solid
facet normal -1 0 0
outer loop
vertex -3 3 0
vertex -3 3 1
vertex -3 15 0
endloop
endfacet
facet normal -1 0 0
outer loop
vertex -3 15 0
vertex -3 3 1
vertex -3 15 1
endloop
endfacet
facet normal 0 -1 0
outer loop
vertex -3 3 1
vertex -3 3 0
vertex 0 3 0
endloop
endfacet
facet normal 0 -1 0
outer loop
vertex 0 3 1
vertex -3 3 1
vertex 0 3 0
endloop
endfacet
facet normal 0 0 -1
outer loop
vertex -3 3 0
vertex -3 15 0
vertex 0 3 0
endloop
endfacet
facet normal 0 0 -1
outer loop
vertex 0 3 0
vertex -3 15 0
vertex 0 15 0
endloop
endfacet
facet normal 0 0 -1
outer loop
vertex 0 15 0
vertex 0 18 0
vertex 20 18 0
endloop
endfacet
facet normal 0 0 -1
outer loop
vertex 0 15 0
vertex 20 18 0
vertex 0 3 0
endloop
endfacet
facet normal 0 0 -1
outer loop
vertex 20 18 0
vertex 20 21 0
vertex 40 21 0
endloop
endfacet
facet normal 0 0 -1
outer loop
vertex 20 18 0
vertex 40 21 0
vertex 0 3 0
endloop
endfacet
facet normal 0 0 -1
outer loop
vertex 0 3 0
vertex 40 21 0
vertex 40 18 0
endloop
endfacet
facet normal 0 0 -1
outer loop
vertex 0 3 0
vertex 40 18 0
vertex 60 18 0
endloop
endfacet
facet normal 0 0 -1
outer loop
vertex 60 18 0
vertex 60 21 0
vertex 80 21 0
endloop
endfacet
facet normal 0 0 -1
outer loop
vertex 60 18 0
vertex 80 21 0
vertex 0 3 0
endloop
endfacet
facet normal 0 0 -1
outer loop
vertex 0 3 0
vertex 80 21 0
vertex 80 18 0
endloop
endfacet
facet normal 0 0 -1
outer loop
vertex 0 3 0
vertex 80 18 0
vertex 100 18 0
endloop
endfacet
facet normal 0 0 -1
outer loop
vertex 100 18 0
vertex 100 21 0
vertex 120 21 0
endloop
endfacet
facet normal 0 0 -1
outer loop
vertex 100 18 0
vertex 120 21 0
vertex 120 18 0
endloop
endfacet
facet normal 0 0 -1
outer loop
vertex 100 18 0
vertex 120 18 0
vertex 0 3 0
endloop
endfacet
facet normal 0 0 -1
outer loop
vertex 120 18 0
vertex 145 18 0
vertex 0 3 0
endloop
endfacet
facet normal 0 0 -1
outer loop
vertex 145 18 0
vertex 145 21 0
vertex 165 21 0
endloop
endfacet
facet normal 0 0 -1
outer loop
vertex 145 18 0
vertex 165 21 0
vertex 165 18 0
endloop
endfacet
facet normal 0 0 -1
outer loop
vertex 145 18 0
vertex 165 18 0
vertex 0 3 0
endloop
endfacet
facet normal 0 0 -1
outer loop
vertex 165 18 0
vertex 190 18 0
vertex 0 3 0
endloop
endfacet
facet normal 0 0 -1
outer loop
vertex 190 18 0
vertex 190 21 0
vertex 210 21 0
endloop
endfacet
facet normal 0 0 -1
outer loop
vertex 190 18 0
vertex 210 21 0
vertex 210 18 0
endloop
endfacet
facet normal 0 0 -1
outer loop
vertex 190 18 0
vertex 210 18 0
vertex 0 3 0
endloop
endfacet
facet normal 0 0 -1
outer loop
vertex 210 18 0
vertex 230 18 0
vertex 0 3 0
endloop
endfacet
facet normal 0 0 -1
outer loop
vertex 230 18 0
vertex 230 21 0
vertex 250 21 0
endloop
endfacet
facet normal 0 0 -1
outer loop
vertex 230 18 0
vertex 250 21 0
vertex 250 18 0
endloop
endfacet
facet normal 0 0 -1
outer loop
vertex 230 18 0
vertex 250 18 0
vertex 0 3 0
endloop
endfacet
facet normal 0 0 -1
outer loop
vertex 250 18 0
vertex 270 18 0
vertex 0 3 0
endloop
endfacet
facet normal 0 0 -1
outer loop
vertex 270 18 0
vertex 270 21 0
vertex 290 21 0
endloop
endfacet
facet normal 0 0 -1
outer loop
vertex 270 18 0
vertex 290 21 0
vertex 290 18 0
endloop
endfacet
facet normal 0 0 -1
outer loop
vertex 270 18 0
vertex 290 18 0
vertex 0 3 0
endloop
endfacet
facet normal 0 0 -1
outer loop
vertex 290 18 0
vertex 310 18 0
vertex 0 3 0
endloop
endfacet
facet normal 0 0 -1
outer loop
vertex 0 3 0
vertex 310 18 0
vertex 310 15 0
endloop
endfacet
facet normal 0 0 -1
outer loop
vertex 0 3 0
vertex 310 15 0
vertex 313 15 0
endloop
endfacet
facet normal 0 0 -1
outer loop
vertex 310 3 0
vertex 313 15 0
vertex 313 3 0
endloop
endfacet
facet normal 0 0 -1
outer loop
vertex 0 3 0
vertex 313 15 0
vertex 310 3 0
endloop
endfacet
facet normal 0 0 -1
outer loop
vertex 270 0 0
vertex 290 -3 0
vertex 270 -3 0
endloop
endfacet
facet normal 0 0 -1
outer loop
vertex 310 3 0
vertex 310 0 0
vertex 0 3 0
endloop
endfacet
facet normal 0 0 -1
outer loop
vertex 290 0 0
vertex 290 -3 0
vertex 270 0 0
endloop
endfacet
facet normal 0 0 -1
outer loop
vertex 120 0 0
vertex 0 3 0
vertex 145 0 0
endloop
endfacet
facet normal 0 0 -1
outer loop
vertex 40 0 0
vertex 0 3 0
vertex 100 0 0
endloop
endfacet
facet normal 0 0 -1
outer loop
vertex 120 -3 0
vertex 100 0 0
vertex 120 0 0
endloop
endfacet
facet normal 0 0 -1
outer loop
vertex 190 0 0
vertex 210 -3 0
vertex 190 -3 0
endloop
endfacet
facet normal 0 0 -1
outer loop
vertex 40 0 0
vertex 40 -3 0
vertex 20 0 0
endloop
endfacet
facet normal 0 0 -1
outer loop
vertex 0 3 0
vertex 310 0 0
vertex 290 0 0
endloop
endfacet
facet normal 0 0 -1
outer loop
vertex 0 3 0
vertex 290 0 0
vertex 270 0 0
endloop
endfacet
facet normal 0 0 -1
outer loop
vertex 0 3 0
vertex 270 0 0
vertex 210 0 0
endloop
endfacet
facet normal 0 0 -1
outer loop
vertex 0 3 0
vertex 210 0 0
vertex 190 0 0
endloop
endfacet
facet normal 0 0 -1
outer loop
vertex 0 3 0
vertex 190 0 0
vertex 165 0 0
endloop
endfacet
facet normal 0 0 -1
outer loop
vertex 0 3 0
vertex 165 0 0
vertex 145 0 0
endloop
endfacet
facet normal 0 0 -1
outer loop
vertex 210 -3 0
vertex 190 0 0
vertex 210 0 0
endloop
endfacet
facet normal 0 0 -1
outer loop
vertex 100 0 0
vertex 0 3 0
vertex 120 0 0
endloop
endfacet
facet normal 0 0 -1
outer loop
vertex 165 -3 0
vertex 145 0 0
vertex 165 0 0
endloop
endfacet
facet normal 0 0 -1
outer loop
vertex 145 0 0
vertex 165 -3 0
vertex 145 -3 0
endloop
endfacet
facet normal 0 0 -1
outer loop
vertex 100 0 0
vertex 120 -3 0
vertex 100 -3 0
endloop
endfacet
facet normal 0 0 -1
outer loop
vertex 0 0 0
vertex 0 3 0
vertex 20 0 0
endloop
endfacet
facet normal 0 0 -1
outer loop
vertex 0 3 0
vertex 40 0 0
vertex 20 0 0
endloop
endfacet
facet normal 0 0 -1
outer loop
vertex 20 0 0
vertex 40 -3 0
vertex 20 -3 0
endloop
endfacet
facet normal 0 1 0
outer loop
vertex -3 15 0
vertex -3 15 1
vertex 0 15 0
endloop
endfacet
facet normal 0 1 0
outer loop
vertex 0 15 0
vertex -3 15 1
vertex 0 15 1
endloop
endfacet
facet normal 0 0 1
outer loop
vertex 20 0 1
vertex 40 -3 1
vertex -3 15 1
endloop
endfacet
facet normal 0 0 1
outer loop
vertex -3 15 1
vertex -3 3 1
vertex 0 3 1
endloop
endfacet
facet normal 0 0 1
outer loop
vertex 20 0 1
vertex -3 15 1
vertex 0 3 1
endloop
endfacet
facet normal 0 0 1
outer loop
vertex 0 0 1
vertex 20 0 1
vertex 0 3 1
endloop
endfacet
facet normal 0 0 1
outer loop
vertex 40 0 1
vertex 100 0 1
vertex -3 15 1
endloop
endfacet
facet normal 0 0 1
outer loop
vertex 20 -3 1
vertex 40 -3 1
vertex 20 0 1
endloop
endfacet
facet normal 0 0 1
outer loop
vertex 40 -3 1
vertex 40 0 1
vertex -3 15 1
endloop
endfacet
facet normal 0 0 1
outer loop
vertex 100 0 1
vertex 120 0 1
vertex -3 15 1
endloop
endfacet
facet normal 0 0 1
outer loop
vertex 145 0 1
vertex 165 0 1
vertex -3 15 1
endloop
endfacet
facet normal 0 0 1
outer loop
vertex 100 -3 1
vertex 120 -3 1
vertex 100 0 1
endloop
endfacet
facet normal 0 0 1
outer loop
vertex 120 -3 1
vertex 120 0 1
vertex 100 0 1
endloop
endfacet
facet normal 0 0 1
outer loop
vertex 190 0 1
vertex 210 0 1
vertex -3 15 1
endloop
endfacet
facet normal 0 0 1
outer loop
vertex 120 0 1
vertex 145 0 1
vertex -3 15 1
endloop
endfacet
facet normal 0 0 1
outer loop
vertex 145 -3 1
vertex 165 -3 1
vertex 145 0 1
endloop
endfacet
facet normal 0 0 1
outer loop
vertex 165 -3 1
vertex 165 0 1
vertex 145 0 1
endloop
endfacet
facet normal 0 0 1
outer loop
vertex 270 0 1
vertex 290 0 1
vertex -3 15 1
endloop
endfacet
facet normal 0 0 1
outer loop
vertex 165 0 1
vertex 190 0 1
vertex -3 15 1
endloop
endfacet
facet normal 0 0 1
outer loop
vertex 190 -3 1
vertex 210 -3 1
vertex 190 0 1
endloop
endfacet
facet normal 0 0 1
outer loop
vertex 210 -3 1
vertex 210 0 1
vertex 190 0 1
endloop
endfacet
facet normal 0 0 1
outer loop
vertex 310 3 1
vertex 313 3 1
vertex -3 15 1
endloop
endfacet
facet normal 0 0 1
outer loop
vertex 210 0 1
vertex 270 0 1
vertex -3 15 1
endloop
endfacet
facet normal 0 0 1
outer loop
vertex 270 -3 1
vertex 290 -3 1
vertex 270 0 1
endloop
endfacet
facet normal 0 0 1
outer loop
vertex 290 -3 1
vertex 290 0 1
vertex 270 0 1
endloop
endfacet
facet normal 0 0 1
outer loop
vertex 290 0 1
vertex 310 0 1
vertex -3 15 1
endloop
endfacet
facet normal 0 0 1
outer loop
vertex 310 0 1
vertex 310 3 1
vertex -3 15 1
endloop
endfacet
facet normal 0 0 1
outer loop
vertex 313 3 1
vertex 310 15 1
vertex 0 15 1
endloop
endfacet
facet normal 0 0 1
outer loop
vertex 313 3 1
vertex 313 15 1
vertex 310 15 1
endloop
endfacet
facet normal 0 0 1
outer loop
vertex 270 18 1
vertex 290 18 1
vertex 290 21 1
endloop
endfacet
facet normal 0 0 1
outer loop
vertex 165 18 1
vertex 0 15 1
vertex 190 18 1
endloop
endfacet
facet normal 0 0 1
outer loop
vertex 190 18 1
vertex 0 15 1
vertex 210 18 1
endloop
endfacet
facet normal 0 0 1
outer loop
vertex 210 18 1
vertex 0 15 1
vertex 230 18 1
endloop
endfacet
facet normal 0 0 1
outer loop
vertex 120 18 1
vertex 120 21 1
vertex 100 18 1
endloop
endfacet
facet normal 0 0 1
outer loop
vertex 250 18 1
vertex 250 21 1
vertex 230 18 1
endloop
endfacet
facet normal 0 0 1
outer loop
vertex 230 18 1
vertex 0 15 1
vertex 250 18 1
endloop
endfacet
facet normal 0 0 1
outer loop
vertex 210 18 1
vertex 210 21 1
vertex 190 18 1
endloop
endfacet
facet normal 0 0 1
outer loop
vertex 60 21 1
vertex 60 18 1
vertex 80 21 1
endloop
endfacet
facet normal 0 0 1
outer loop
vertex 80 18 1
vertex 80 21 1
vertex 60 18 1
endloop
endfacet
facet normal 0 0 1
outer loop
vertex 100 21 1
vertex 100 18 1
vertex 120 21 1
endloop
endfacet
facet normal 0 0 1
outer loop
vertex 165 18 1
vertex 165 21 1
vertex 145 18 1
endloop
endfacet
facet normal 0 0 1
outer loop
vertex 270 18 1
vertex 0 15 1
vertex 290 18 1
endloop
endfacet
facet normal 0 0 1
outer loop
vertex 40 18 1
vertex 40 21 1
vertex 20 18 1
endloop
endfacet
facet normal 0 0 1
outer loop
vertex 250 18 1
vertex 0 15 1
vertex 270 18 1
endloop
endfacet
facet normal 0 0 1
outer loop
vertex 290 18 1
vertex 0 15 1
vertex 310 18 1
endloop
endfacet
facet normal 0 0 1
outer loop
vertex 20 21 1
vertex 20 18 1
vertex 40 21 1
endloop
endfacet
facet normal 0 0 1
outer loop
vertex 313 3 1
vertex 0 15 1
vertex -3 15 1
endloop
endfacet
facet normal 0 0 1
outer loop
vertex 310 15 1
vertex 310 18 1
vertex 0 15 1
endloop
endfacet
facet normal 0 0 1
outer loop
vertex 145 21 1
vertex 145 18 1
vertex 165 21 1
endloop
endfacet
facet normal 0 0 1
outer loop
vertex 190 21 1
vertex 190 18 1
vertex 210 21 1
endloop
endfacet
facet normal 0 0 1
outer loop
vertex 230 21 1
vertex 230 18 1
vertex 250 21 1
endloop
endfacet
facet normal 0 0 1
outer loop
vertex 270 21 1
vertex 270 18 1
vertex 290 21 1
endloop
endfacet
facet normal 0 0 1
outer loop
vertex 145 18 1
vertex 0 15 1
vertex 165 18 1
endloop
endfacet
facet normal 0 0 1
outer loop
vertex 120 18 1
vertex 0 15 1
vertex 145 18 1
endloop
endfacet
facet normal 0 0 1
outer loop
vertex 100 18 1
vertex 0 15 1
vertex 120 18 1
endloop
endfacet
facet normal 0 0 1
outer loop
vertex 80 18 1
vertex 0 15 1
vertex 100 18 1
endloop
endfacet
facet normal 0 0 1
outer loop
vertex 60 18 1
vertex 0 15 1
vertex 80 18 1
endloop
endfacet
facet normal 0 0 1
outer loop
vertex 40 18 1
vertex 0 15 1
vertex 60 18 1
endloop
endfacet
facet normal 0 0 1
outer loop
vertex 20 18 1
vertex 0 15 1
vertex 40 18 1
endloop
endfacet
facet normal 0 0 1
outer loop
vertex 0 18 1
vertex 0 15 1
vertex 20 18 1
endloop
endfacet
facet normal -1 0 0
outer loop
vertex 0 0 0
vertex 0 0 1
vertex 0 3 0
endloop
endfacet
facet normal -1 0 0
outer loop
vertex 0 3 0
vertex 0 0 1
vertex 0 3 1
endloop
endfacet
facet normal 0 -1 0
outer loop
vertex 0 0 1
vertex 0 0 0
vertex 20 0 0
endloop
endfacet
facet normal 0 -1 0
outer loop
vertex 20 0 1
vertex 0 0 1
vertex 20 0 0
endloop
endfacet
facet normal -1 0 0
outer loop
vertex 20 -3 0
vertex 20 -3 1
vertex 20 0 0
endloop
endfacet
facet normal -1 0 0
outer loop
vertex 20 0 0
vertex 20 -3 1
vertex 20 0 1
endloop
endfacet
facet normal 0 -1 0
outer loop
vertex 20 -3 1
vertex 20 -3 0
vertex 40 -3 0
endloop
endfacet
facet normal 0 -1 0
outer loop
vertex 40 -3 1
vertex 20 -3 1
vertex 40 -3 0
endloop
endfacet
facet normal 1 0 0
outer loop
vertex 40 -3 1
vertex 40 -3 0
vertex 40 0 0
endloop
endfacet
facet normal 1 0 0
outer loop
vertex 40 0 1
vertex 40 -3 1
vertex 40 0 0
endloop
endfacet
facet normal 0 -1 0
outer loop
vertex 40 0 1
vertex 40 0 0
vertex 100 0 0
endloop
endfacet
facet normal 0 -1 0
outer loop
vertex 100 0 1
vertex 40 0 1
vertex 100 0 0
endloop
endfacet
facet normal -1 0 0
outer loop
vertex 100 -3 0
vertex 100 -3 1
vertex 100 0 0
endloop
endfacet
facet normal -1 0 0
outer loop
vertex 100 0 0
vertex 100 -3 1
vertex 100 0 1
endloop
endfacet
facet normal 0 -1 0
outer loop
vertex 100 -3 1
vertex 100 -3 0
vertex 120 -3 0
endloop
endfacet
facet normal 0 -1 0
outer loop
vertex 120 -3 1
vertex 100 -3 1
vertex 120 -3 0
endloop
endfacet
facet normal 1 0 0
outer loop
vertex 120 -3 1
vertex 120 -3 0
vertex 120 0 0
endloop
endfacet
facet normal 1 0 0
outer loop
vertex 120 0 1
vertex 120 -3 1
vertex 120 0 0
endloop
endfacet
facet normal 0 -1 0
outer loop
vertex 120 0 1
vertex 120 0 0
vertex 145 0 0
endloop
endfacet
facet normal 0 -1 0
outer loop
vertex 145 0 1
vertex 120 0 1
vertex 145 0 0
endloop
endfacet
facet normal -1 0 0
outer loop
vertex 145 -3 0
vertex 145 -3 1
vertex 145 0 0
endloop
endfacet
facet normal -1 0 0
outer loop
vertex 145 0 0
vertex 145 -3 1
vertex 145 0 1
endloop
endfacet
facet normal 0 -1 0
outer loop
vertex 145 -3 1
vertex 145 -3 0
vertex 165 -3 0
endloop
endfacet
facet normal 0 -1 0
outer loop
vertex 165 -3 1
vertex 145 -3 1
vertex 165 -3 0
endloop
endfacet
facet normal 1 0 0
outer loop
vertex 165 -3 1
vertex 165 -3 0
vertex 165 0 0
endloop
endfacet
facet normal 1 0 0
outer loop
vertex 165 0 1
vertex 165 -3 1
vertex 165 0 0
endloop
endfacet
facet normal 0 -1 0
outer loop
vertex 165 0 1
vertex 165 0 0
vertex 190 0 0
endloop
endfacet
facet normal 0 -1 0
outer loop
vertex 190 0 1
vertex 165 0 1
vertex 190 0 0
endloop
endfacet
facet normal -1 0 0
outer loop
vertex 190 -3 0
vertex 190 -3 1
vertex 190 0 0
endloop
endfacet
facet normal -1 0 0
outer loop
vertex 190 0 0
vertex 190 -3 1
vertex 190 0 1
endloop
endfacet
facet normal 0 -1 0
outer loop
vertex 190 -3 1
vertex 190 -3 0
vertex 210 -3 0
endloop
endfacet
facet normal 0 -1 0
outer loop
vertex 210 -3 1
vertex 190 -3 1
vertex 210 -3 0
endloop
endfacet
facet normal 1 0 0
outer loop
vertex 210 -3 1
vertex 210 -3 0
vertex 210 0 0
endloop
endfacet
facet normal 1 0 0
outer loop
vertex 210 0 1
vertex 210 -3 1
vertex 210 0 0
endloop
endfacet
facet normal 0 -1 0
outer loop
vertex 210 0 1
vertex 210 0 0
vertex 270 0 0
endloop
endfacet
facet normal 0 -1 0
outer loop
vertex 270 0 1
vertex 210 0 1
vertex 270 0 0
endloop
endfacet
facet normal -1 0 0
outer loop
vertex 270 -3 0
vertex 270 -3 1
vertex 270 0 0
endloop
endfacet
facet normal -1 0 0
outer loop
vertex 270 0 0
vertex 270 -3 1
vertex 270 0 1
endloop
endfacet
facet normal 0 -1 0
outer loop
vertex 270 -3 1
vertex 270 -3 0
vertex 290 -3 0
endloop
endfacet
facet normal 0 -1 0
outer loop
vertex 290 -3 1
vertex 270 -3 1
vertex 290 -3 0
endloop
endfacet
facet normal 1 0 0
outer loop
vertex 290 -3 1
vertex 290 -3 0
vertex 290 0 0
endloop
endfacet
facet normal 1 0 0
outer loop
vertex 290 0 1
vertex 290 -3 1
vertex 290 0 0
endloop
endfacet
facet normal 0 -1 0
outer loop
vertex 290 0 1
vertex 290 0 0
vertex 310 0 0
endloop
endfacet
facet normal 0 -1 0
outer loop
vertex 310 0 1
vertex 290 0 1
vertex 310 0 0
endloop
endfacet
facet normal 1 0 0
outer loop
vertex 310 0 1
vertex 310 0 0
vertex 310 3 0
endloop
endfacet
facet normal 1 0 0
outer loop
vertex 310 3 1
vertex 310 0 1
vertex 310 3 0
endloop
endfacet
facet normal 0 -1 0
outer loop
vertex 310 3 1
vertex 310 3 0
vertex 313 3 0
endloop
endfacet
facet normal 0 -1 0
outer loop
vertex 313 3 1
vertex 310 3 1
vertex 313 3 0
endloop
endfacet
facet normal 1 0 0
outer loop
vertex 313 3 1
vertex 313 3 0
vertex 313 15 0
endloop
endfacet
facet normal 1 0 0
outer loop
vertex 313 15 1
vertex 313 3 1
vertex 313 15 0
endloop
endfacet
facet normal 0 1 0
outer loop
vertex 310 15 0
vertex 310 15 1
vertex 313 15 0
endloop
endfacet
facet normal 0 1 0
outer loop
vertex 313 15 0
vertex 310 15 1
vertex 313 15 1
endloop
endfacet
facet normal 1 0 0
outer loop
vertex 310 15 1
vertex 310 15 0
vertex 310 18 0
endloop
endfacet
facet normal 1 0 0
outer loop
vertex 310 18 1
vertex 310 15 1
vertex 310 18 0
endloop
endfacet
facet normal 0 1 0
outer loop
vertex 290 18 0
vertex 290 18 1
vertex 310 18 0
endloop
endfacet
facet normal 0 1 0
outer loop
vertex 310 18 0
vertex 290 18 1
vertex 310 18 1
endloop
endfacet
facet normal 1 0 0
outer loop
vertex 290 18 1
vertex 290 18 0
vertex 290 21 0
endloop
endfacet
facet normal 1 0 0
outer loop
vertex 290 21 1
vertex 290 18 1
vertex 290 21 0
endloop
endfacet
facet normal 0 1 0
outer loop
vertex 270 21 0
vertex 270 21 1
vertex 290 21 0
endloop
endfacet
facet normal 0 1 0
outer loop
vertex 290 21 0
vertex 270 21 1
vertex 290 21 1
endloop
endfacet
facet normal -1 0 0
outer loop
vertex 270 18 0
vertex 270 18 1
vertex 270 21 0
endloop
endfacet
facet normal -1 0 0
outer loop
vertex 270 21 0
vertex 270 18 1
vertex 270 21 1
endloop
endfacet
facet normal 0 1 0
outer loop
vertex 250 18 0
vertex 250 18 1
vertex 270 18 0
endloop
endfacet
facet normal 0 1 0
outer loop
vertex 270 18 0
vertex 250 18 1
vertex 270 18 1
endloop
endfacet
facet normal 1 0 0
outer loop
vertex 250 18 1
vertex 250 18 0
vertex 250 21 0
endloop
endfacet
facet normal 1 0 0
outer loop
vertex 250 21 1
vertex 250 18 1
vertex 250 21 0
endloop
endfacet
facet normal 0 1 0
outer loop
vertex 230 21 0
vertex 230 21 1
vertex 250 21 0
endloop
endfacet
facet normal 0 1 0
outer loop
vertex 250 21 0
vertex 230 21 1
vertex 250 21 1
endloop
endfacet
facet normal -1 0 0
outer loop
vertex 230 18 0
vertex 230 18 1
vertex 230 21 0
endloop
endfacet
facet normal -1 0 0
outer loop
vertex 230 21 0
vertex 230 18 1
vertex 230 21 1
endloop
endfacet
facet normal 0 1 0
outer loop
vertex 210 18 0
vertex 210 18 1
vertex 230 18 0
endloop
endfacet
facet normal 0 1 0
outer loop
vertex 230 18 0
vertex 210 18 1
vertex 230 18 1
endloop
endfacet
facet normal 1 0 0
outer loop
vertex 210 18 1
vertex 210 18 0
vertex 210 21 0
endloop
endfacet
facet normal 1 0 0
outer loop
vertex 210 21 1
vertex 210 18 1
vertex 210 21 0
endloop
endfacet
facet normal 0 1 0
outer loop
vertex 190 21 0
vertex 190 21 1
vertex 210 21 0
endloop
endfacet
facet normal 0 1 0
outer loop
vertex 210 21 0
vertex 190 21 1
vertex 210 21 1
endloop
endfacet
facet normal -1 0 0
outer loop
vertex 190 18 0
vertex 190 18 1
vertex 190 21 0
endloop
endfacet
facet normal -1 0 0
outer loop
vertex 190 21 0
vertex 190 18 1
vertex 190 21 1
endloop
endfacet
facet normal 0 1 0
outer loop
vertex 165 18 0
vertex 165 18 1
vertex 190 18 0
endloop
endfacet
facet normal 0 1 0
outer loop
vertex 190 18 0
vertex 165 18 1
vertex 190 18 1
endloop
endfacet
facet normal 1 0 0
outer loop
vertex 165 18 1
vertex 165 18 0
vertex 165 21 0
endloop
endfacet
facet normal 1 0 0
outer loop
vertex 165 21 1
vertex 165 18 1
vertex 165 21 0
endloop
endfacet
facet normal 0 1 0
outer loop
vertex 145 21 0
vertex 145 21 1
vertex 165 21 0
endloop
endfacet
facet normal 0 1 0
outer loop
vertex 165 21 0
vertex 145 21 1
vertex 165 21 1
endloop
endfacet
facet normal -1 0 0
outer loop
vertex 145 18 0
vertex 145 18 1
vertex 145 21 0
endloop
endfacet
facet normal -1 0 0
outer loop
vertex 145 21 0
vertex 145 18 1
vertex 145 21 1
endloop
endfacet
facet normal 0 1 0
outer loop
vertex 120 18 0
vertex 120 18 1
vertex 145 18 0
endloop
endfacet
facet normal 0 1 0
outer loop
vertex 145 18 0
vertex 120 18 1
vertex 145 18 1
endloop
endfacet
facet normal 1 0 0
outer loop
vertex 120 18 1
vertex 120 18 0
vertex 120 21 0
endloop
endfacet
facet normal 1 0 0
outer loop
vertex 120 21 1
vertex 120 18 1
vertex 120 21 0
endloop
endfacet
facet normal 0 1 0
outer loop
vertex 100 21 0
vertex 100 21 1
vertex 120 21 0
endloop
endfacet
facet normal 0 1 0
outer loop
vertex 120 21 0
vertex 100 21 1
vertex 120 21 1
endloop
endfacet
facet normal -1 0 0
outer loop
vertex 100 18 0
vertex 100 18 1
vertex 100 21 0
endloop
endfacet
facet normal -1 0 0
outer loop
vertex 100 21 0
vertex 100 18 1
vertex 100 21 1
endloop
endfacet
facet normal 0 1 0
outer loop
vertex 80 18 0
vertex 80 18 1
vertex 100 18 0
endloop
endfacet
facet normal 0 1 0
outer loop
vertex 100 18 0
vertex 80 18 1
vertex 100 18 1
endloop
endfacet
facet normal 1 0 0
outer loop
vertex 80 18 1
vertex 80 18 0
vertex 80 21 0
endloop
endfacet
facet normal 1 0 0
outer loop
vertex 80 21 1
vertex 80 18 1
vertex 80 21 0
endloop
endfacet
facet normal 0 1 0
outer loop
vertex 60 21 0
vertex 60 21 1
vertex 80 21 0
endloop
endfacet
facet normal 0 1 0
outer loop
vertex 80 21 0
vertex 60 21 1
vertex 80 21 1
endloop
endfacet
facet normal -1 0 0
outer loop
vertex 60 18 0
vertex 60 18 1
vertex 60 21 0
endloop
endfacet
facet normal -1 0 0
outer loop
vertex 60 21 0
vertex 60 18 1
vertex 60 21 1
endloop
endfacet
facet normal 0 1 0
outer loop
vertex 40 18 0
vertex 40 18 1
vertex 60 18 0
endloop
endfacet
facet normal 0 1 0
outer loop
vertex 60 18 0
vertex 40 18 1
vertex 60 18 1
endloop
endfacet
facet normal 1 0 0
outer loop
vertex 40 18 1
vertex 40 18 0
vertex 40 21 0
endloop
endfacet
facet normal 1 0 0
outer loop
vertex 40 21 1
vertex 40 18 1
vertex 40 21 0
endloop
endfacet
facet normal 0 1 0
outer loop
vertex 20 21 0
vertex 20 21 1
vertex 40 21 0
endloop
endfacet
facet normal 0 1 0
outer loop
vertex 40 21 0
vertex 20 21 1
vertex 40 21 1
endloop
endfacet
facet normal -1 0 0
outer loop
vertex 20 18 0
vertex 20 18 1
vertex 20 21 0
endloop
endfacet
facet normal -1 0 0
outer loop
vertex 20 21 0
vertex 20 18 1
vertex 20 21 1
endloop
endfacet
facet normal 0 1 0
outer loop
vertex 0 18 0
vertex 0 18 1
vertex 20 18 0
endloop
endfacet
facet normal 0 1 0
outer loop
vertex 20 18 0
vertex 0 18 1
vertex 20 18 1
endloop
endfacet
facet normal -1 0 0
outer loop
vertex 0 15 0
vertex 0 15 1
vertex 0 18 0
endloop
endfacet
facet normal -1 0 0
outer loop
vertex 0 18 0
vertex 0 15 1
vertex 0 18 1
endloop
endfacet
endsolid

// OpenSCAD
tapwitdh = 20;
tapheight = 3;
tapwitdh2 = 12;
bot = -3;
top = 18;
module inderside()
{
		cube([310,18,1]);
//			translate([60,bot,0]) cube([tapwitdh,tapheight,1]);
//			translate([230,bot,0]) cube([tapwitdh,tapheight,1]);
			translate([20,bot,0]) cube([tapwitdh,tapheight,1]);
			translate([270,bot,0]) cube([tapwitdh,tapheight,1]);
			translate([100,bot,0]) cube([tapwitdh,tapheight,1]);
			translate([190,bot,0]) cube([tapwitdh,tapheight,1]);
			translate([145,bot,0]) cube([tapwitdh,tapheight,1]);

			translate([20,top,0]) cube([tapwitdh,tapheight,1]);
			translate([270,top,0]) cube([tapwitdh,tapheight,1]);
			translate([60,top,0]) cube([tapwitdh,tapheight,1]);
			translate([230,top,0]) cube([tapwitdh,tapheight,1]);
			translate([100,top,0]) cube([tapwitdh,tapheight,1]);
			translate([190,top,0]) cube([tapwitdh,tapheight,1]);
			translate([145,top,0]) cube([tapwitdh,tapheight,1]);

	translate([-3,3,0])cube([tapheight,tapwitdh2,1]);

	translate([310,3,0])cube([tapheight,tapwitdh2,1]);

}
inderside();
